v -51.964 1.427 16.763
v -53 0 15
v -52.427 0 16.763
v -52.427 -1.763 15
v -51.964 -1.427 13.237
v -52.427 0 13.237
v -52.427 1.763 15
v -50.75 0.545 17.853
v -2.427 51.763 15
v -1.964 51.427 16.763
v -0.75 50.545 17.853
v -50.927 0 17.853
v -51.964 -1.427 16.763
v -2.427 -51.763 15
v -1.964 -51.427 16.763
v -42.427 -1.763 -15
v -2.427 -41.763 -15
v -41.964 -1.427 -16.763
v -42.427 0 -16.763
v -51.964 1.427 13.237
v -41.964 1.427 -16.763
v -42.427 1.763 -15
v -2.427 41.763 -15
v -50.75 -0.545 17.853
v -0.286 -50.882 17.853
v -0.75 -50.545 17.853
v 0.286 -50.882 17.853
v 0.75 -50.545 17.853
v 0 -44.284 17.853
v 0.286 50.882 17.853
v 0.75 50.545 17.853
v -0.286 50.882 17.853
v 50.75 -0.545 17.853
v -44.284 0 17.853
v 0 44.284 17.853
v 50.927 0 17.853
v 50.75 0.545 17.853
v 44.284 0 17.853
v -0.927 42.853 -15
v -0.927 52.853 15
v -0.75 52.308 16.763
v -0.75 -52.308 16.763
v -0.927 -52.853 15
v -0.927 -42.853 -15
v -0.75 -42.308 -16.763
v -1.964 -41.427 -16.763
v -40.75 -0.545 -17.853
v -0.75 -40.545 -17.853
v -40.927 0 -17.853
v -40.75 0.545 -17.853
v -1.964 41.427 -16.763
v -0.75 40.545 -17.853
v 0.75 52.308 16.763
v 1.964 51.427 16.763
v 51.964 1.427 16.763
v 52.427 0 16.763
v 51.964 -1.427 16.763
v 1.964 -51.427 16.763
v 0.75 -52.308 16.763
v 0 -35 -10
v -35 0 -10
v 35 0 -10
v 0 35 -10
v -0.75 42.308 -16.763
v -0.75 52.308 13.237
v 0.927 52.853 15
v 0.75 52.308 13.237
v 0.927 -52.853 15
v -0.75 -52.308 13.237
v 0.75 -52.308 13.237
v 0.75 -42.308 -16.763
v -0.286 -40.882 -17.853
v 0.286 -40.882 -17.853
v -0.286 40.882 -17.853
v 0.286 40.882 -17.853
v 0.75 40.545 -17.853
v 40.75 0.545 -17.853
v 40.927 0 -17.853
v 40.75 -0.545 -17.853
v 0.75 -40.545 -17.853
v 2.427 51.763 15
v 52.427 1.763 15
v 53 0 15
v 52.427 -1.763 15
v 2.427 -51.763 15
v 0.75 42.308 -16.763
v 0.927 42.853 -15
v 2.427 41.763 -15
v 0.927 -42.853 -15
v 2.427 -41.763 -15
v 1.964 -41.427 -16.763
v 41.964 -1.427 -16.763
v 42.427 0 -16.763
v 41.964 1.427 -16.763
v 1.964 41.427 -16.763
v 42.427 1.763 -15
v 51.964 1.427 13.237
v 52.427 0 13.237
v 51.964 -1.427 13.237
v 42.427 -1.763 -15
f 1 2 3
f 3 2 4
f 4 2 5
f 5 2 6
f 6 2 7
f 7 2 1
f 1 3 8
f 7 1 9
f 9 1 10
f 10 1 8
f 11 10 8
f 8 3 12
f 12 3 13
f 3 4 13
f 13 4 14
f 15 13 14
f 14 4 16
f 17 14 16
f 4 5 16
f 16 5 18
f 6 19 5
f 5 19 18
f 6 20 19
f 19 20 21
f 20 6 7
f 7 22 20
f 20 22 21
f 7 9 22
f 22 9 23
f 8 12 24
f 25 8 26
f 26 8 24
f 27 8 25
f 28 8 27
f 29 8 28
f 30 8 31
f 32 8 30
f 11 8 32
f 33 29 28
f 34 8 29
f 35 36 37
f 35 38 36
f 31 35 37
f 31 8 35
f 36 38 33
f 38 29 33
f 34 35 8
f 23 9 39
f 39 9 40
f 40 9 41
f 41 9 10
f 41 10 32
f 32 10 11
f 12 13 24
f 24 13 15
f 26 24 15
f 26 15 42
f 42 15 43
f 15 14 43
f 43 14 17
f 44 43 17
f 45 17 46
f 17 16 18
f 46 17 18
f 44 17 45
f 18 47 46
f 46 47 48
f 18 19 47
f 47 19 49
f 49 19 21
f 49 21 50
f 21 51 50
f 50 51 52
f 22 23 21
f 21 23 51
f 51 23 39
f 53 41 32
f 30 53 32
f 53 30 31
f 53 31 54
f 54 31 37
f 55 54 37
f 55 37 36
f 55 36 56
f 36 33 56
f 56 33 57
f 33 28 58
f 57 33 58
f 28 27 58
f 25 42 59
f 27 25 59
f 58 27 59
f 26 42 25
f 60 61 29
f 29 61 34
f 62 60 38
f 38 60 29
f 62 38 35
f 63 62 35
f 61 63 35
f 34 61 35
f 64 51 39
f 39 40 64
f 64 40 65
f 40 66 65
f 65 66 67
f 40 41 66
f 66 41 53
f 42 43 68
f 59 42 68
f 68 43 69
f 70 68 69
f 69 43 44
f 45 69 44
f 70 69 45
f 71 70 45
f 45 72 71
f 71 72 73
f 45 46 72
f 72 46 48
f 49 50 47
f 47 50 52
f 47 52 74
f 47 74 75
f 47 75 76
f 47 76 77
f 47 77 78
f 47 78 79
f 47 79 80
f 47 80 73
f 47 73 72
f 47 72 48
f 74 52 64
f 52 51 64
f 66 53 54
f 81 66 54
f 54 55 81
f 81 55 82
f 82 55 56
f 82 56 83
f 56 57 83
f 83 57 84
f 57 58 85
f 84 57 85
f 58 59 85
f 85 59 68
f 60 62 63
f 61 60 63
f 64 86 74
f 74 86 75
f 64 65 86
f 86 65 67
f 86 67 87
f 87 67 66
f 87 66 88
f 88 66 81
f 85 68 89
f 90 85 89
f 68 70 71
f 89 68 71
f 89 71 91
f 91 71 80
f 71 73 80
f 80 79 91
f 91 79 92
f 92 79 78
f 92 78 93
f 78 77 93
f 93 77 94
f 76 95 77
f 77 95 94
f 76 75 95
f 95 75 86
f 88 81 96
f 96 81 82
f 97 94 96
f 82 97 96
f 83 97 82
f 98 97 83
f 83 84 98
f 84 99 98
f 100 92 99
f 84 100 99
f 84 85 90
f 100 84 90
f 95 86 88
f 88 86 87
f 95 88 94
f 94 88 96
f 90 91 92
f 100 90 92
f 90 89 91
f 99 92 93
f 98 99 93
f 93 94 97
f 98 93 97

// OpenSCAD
difference(){
minkowski(){
cylinder(r1=40, r2=50, h=30, $fn=4, center=true);
sphere(h=3, r=3);
}
opening();
}

module opening(){
translate([0,0,5])
cylinder(r1=35, r2=45, h=30, $fn=4, center=true);
}
